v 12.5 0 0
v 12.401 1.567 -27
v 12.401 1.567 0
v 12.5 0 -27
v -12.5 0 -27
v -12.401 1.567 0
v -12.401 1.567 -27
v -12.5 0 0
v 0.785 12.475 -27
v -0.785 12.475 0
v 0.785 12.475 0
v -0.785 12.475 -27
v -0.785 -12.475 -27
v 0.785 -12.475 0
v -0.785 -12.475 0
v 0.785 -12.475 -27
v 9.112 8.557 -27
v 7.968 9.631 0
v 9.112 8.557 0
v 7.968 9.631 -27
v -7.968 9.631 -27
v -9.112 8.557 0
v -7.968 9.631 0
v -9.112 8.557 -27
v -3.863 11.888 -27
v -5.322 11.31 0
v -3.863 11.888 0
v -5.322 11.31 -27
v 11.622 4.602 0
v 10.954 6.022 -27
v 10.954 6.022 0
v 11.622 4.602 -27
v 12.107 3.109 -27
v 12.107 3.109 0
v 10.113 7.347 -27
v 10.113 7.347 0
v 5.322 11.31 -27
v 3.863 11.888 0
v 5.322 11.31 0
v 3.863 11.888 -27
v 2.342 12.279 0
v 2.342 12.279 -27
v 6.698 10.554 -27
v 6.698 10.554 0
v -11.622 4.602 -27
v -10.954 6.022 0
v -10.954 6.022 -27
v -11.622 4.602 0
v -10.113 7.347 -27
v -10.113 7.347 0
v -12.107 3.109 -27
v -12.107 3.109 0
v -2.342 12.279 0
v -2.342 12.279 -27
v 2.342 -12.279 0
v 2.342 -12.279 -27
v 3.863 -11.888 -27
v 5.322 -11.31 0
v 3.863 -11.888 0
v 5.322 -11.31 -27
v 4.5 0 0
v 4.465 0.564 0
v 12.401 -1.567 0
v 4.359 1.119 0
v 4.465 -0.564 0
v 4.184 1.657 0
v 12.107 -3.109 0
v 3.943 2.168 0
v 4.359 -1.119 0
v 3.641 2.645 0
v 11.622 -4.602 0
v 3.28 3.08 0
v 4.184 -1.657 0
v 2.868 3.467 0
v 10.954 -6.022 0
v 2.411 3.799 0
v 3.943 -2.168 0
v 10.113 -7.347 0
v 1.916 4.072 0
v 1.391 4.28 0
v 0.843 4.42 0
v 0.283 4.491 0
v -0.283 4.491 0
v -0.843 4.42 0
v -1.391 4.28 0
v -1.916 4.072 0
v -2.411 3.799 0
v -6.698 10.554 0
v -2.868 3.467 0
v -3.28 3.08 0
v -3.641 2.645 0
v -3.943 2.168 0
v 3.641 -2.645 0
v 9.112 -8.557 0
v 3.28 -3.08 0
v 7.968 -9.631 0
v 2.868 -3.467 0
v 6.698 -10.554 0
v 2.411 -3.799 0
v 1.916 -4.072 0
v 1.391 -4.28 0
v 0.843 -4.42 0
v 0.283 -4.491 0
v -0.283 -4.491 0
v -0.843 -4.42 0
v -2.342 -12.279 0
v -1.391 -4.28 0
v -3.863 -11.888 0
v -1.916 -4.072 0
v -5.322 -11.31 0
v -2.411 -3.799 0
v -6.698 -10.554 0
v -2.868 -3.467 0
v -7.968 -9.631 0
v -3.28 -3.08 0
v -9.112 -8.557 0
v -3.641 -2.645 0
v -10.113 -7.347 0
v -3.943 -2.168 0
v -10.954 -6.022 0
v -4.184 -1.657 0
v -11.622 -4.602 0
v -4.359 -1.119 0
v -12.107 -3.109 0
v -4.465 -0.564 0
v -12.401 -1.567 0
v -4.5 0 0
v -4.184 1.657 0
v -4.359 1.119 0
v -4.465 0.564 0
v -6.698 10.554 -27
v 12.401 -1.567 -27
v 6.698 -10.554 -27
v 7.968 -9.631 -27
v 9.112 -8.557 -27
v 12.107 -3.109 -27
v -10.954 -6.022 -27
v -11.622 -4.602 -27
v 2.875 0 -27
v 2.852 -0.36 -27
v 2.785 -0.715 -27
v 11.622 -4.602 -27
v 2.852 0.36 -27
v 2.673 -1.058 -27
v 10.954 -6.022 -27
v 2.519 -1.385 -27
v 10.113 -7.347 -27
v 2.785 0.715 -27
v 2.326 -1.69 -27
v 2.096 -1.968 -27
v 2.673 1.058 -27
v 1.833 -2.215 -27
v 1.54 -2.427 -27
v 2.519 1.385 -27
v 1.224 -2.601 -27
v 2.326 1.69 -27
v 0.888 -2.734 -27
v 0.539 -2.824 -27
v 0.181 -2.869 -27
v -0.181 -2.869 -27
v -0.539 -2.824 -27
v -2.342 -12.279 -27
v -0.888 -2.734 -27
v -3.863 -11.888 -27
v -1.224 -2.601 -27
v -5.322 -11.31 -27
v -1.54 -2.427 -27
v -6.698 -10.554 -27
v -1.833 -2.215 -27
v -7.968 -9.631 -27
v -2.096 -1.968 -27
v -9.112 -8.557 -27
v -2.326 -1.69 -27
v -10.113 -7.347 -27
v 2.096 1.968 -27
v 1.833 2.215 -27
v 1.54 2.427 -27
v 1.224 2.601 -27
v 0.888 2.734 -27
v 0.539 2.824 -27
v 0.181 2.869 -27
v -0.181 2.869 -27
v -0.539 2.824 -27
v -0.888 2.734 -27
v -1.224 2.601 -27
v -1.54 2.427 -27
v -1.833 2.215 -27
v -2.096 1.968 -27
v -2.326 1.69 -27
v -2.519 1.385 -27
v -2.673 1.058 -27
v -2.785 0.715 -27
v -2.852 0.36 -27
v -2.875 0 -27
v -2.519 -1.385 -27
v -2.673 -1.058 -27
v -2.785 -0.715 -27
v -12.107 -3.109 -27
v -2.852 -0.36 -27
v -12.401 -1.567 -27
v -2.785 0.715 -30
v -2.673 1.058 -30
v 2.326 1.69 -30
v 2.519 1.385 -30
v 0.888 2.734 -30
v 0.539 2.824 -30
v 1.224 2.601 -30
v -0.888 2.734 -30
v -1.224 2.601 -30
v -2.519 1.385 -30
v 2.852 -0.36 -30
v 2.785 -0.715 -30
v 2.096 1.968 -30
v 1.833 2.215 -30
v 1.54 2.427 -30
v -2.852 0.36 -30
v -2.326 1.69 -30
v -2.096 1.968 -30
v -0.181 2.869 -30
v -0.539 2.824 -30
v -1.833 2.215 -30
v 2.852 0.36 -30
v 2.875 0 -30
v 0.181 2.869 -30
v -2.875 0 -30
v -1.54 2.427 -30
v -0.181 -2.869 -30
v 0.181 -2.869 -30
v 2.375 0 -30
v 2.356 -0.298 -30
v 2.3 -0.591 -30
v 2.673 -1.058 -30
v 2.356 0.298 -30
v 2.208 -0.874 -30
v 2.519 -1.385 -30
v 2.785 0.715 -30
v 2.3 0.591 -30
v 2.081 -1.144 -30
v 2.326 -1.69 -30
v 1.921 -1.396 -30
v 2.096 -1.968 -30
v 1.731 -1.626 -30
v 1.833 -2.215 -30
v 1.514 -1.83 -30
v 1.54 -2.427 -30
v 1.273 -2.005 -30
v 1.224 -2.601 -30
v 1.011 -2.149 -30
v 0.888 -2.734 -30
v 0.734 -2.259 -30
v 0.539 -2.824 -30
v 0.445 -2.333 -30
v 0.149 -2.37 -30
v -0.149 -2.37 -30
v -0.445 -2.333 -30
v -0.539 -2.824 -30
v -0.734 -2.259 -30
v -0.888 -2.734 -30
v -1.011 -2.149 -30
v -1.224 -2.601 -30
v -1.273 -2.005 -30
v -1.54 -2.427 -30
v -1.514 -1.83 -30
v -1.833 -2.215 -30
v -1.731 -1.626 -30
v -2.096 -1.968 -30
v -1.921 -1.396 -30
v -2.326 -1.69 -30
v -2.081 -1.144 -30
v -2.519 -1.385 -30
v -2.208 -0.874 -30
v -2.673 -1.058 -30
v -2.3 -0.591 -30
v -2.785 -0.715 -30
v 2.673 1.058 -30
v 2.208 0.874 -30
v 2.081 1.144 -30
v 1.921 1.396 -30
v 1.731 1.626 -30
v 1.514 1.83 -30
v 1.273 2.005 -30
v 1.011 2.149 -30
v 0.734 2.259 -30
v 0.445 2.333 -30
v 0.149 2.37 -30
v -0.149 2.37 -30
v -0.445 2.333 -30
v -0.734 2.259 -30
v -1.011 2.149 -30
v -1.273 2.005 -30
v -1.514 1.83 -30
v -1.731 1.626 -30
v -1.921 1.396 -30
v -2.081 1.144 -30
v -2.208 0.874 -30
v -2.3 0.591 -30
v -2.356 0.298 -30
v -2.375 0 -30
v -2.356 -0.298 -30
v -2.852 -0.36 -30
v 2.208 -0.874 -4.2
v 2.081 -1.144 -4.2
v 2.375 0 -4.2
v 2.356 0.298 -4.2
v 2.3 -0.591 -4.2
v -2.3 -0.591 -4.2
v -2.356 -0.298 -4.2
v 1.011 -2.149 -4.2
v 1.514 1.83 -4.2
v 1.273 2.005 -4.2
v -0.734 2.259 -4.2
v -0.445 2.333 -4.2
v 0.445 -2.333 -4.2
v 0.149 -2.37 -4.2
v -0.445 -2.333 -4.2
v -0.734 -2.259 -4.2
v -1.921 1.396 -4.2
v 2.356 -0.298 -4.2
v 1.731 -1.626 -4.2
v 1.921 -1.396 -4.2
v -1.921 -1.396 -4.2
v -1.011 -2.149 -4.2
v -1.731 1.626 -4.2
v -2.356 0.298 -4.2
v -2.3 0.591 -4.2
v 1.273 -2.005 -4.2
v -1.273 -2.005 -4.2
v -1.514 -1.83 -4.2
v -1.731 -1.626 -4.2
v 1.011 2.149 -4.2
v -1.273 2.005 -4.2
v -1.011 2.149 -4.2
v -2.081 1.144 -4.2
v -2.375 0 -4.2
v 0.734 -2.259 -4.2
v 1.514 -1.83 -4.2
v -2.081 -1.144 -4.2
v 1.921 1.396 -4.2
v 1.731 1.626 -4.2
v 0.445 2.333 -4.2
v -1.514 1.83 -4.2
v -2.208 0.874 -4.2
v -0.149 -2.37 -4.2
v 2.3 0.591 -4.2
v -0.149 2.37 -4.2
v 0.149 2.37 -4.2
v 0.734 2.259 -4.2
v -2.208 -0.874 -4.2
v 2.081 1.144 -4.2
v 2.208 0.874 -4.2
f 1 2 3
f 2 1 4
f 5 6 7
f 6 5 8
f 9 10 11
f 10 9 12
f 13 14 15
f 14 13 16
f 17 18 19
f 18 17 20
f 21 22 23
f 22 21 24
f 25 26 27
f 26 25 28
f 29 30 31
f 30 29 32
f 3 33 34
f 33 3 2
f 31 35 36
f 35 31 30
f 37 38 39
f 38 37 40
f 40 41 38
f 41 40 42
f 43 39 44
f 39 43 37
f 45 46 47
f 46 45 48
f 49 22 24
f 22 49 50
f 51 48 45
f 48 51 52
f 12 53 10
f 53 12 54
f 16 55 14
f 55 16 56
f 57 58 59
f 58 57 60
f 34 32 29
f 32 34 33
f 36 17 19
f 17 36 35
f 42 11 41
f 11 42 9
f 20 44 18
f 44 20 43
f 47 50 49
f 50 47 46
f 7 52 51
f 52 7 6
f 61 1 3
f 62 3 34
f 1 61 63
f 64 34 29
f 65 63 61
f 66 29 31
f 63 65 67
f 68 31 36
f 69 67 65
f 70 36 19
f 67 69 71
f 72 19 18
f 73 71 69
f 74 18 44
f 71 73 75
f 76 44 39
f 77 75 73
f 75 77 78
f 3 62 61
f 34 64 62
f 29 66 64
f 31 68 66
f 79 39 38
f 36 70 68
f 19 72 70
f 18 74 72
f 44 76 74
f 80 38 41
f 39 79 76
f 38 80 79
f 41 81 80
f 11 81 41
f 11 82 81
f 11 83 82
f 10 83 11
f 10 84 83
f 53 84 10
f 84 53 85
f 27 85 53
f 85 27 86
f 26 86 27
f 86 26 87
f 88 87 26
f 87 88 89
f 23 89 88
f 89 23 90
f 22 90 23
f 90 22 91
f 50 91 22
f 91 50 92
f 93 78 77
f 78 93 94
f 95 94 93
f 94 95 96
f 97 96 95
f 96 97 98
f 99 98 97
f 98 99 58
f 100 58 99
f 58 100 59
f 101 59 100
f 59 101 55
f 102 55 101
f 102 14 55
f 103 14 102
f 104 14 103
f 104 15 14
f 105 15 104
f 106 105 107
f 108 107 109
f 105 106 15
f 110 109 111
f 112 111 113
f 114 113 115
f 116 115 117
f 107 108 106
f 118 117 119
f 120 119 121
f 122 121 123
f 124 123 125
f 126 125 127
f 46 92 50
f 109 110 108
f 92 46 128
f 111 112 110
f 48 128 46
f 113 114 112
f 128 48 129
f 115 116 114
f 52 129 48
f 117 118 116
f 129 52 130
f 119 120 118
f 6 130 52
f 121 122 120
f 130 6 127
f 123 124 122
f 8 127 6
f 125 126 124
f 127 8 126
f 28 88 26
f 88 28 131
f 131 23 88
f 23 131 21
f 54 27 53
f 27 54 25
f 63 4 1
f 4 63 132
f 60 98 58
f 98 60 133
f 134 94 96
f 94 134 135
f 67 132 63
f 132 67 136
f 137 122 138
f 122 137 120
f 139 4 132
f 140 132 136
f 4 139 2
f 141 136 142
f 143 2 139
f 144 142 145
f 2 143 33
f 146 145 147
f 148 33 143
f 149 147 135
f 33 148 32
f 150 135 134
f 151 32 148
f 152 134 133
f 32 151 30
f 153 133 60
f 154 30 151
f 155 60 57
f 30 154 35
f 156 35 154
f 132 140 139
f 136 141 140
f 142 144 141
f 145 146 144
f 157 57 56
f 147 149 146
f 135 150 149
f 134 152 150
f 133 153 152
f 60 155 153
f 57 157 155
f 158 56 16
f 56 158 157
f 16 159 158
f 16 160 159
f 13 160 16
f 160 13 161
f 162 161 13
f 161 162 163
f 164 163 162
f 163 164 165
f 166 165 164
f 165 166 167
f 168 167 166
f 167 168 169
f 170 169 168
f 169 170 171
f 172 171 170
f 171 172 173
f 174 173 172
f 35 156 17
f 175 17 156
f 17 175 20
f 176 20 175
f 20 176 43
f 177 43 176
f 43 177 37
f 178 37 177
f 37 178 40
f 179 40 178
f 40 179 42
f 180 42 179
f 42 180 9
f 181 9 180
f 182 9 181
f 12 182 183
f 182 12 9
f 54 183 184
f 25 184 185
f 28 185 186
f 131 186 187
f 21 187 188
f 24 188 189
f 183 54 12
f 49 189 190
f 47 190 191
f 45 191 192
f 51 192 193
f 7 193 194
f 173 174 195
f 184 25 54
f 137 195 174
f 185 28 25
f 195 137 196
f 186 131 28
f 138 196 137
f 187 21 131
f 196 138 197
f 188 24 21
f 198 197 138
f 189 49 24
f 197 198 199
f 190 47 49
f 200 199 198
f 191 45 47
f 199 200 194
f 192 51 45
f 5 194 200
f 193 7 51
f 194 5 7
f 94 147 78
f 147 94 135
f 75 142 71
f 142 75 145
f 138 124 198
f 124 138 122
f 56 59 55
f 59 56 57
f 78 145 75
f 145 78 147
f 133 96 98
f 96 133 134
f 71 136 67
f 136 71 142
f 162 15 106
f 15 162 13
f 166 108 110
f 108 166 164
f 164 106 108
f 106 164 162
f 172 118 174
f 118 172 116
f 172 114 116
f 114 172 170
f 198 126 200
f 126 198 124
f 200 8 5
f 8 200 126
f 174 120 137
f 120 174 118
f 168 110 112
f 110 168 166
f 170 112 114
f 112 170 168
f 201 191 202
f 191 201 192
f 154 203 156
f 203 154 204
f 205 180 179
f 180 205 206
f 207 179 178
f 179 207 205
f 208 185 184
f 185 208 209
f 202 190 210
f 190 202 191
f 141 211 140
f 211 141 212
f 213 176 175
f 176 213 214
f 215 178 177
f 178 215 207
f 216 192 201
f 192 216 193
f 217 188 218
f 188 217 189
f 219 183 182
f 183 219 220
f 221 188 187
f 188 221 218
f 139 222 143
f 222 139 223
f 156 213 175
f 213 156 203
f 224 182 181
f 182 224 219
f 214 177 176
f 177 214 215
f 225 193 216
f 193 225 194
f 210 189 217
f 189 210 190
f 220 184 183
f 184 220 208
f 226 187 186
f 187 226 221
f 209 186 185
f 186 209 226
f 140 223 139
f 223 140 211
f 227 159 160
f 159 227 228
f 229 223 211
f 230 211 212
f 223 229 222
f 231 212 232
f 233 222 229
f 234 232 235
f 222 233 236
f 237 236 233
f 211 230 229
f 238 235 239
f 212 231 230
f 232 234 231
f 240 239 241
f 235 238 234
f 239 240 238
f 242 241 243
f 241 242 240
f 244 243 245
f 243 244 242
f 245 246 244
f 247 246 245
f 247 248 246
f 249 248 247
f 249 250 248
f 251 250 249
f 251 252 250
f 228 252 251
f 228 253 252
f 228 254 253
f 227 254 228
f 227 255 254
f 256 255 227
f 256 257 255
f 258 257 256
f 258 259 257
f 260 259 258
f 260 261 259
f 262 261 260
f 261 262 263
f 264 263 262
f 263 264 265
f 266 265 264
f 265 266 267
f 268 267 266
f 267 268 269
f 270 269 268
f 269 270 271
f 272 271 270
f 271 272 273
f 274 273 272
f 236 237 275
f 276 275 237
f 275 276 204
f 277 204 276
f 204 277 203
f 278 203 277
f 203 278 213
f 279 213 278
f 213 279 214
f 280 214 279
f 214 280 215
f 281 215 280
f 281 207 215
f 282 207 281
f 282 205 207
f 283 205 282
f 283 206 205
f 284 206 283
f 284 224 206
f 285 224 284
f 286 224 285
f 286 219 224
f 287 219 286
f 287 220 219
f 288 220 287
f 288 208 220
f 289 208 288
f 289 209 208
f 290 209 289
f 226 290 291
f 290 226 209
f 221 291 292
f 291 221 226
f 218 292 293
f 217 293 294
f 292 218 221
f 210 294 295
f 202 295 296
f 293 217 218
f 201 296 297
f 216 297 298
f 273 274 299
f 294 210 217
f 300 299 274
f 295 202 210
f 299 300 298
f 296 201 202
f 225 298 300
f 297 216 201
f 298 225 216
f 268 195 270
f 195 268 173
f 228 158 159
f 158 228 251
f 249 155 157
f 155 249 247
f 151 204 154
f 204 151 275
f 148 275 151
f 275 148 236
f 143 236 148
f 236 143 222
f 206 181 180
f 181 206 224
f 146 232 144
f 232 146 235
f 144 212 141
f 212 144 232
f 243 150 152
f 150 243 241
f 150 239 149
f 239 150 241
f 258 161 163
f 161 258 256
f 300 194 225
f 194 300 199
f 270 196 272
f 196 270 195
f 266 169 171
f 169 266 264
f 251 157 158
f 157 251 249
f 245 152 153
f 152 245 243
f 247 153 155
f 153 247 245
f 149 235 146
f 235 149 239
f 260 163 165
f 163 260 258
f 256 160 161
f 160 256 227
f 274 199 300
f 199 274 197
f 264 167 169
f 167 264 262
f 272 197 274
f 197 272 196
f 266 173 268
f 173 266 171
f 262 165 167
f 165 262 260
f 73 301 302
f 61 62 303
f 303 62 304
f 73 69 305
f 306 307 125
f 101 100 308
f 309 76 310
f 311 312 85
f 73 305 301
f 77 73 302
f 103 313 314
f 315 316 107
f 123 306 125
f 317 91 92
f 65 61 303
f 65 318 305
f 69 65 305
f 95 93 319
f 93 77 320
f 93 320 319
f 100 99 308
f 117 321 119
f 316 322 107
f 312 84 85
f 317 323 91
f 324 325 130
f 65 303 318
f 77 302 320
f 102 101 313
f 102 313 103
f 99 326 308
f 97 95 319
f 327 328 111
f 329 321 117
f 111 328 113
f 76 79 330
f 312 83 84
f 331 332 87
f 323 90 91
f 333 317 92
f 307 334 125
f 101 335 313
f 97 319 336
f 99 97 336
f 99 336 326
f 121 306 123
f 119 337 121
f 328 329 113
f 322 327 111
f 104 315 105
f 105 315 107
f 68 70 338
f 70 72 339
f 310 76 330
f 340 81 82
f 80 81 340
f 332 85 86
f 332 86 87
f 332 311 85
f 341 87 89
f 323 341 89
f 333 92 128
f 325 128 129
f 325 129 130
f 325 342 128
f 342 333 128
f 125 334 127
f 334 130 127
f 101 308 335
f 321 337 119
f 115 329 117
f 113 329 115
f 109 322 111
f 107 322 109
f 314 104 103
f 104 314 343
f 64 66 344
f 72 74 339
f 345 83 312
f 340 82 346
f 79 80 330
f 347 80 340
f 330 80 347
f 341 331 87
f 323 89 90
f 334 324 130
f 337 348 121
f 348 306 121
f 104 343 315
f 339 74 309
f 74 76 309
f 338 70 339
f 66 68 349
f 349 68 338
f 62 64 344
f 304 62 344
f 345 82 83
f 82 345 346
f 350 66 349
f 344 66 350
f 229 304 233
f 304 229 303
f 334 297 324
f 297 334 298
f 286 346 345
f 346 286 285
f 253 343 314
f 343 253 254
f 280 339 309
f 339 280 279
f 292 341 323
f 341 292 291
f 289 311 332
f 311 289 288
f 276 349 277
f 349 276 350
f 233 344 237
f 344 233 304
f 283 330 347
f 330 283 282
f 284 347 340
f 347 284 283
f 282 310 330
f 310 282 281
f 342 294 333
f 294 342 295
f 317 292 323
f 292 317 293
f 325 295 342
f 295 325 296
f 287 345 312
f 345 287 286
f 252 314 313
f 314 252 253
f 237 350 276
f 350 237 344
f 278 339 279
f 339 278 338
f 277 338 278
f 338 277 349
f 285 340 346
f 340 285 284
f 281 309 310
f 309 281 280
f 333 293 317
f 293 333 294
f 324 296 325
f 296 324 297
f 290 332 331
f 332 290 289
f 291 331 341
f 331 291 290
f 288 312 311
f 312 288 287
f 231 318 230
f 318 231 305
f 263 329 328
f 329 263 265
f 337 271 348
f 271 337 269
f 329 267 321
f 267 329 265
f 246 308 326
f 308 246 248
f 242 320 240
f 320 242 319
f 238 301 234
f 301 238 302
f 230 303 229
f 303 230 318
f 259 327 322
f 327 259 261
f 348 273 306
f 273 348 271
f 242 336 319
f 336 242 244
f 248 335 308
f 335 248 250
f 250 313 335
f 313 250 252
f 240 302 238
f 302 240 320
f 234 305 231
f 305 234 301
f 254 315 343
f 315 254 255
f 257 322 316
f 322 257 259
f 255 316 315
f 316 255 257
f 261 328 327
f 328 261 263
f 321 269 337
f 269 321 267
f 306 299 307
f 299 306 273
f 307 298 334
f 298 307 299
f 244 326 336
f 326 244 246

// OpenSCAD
$fn = 50;


difference() {
	union() {
		translate(v = [0, 0, -27.0000000000]) {
			cylinder(h = 27, r = 12.5000000000);
		}
		#translate(v = [0, 0, -30.0000000000]) {
			cylinder(h = 30, r = 2.8750000000);
		}
	}
	union() {
		translate(v = [0, 0, 0]) {
			rotate(a = [0, 0, 0]) {
				difference() {
					union() {
						translate(v = [0, 0, -30.0000000000]) {
							cylinder(h = 30, r = 2.2500000000);
						}
						translate(v = [0, 0, -4.2000000000]) {
							cylinder(h = 4.2000000000, r1 = 2.3750000000, r2 = 4.5000000000);
						}
						translate(v = [0, 0, -30.0000000000]) {
							cylinder(h = 30, r = 2.3750000000);
						}
						translate(v = [0, 0, -30.0000000000]) {
							cylinder(h = 30, r = 2.2500000000);
						}
					}
					union();
				}
			}
		}
	}
}
